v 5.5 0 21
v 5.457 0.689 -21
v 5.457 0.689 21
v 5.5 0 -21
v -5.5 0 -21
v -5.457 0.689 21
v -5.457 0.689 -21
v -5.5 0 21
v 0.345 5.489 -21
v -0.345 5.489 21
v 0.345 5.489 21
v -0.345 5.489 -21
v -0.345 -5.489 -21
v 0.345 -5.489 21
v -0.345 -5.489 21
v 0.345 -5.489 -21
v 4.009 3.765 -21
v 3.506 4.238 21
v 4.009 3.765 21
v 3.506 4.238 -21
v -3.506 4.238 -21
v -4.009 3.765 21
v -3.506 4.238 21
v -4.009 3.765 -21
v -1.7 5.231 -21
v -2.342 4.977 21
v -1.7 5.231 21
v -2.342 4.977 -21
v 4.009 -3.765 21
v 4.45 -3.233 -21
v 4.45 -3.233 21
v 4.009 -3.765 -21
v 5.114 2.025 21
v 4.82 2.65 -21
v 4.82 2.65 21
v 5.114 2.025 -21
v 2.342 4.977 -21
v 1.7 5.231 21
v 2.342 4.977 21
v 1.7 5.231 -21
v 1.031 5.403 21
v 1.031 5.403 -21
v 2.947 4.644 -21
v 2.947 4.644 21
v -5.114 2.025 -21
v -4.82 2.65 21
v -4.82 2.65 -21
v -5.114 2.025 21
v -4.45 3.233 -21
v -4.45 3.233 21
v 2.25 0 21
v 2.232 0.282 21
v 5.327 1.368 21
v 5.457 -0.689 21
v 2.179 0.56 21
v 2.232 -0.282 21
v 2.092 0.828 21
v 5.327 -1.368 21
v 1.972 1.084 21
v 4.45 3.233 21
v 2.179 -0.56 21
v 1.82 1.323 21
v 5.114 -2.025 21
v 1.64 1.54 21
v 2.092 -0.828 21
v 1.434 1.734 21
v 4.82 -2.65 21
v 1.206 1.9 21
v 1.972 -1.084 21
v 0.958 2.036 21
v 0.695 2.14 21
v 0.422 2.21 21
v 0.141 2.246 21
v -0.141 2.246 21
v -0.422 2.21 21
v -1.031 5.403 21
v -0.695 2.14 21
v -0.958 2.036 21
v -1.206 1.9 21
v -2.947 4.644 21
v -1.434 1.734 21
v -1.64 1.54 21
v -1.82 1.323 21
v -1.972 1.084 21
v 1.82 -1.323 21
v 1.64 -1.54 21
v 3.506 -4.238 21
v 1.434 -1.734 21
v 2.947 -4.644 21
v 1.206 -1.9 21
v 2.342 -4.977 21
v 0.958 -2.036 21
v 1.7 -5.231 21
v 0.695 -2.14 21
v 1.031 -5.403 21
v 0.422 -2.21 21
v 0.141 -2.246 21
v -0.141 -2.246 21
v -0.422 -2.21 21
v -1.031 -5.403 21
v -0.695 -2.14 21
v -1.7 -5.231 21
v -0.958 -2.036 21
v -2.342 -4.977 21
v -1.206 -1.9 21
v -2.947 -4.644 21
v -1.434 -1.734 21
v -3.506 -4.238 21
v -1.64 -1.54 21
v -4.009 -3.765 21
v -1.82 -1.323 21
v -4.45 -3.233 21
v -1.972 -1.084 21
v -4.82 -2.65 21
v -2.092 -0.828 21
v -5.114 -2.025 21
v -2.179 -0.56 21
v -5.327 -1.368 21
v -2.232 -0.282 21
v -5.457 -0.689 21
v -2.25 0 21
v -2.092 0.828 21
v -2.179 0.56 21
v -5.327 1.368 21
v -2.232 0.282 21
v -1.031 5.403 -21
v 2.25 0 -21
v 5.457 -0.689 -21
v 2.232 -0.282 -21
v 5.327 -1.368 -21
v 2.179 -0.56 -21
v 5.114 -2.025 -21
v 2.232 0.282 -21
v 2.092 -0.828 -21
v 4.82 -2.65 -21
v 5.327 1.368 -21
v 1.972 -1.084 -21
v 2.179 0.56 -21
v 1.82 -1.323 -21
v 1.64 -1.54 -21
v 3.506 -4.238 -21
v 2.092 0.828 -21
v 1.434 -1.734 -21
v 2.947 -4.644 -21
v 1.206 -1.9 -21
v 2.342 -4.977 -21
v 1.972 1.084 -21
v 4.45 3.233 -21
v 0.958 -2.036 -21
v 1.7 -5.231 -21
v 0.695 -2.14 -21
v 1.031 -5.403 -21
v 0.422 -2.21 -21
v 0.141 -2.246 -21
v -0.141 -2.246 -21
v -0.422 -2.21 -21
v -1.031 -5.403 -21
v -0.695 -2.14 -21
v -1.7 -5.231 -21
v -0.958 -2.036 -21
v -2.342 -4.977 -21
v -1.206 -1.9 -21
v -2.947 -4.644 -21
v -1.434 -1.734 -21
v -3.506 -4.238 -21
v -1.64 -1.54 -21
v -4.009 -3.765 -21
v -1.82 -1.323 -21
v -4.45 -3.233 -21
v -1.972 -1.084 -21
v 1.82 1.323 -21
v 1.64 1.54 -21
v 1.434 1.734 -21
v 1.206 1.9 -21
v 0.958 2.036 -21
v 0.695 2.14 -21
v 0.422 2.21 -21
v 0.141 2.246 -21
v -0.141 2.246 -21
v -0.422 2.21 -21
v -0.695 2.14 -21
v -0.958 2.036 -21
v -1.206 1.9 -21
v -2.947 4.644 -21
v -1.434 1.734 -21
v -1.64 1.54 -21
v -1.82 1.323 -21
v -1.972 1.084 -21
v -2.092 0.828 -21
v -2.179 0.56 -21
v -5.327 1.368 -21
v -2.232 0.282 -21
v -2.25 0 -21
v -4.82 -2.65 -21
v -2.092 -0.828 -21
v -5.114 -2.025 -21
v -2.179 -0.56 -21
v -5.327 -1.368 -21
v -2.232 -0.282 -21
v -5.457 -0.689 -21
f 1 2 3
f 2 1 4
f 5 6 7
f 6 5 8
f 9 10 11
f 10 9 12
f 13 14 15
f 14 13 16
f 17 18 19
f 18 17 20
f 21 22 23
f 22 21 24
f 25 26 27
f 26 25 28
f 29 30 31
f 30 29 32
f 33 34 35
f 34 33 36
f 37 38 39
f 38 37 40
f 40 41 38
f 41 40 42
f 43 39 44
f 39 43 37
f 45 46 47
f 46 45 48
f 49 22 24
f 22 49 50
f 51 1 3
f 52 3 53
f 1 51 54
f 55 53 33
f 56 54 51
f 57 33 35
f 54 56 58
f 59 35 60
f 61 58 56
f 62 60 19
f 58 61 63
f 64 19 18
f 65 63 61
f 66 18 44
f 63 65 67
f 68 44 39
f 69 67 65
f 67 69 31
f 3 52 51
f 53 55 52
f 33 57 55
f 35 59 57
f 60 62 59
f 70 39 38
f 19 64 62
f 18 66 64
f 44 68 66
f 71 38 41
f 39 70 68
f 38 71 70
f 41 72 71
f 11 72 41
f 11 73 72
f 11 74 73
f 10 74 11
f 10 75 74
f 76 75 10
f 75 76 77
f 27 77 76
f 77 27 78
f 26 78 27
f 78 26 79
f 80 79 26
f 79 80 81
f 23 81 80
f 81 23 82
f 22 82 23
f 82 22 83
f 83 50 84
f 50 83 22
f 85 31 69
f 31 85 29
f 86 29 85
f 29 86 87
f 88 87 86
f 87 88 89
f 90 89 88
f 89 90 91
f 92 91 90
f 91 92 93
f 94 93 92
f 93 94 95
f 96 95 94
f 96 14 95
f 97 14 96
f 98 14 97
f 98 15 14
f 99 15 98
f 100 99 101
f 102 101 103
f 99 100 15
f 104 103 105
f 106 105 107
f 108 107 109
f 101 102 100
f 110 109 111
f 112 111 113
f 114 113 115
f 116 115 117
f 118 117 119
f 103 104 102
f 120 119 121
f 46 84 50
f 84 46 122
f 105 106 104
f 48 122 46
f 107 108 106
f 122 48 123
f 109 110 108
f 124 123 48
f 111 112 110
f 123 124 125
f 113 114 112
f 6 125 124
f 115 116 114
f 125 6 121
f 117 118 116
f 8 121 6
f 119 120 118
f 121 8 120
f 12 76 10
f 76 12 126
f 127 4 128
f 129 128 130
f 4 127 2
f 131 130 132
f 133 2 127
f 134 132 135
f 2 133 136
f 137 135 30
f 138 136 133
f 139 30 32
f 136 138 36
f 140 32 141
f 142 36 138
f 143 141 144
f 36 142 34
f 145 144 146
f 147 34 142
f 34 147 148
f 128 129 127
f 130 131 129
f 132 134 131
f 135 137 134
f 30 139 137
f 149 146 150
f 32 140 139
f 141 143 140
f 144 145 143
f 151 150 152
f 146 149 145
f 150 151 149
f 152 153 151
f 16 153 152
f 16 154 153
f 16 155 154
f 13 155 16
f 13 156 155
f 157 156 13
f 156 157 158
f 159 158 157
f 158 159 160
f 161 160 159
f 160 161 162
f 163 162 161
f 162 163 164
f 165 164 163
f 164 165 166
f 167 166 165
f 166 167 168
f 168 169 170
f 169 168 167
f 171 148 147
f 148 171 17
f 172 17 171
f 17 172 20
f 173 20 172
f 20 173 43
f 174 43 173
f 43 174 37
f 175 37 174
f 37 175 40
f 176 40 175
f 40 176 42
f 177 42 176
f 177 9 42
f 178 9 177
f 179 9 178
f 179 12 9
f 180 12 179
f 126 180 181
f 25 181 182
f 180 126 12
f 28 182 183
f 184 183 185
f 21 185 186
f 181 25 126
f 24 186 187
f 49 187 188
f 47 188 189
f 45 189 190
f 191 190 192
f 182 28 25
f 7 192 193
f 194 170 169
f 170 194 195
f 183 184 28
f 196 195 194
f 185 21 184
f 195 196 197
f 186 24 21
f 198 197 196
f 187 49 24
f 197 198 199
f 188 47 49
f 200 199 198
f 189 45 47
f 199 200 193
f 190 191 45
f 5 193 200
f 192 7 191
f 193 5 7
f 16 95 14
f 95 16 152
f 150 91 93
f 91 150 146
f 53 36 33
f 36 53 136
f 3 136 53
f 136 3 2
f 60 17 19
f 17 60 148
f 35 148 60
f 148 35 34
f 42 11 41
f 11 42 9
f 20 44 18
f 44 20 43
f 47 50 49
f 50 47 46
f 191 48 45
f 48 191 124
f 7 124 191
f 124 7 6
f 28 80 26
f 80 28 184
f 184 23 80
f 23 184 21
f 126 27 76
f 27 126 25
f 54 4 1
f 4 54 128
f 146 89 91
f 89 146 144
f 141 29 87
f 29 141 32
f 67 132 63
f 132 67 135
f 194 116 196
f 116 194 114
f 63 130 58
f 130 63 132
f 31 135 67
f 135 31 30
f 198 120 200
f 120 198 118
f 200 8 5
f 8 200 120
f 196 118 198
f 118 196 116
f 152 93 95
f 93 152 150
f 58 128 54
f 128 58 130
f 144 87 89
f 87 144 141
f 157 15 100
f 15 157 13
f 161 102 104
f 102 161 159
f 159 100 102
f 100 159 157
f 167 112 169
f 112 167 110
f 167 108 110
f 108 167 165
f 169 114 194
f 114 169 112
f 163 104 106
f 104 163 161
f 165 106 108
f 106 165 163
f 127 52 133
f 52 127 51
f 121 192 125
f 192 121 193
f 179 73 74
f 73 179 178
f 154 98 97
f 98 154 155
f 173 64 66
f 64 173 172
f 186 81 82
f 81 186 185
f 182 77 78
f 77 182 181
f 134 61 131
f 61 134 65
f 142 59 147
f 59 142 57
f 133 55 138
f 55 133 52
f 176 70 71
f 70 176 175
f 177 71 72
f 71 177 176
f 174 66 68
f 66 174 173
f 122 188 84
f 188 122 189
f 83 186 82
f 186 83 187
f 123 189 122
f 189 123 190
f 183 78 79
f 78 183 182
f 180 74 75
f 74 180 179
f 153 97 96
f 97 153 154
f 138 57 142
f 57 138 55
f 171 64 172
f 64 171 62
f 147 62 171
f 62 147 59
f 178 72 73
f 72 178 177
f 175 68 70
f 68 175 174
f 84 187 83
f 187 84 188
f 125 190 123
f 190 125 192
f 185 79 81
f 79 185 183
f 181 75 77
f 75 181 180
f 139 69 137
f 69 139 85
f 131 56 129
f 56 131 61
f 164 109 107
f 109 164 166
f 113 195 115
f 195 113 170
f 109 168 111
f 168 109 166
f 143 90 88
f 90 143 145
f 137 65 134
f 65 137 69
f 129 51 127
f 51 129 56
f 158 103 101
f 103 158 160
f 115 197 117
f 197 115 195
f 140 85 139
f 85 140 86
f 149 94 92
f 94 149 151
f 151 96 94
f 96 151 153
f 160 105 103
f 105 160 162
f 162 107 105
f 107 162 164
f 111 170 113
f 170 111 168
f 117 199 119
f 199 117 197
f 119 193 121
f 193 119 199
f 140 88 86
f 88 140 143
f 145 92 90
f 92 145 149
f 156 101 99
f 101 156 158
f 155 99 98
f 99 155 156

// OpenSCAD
$fn = 50;


difference() {
	union() {
		translate(v = [0, 0, -21.0000000000]) {
			cylinder(h = 42, r = 5.5000000000);
		}
	}
	union() {
		translate(v = [0, 0, -100.0000000000]) {
			cylinder(h = 200, r = 2.2500000000);
		}
	}
}
